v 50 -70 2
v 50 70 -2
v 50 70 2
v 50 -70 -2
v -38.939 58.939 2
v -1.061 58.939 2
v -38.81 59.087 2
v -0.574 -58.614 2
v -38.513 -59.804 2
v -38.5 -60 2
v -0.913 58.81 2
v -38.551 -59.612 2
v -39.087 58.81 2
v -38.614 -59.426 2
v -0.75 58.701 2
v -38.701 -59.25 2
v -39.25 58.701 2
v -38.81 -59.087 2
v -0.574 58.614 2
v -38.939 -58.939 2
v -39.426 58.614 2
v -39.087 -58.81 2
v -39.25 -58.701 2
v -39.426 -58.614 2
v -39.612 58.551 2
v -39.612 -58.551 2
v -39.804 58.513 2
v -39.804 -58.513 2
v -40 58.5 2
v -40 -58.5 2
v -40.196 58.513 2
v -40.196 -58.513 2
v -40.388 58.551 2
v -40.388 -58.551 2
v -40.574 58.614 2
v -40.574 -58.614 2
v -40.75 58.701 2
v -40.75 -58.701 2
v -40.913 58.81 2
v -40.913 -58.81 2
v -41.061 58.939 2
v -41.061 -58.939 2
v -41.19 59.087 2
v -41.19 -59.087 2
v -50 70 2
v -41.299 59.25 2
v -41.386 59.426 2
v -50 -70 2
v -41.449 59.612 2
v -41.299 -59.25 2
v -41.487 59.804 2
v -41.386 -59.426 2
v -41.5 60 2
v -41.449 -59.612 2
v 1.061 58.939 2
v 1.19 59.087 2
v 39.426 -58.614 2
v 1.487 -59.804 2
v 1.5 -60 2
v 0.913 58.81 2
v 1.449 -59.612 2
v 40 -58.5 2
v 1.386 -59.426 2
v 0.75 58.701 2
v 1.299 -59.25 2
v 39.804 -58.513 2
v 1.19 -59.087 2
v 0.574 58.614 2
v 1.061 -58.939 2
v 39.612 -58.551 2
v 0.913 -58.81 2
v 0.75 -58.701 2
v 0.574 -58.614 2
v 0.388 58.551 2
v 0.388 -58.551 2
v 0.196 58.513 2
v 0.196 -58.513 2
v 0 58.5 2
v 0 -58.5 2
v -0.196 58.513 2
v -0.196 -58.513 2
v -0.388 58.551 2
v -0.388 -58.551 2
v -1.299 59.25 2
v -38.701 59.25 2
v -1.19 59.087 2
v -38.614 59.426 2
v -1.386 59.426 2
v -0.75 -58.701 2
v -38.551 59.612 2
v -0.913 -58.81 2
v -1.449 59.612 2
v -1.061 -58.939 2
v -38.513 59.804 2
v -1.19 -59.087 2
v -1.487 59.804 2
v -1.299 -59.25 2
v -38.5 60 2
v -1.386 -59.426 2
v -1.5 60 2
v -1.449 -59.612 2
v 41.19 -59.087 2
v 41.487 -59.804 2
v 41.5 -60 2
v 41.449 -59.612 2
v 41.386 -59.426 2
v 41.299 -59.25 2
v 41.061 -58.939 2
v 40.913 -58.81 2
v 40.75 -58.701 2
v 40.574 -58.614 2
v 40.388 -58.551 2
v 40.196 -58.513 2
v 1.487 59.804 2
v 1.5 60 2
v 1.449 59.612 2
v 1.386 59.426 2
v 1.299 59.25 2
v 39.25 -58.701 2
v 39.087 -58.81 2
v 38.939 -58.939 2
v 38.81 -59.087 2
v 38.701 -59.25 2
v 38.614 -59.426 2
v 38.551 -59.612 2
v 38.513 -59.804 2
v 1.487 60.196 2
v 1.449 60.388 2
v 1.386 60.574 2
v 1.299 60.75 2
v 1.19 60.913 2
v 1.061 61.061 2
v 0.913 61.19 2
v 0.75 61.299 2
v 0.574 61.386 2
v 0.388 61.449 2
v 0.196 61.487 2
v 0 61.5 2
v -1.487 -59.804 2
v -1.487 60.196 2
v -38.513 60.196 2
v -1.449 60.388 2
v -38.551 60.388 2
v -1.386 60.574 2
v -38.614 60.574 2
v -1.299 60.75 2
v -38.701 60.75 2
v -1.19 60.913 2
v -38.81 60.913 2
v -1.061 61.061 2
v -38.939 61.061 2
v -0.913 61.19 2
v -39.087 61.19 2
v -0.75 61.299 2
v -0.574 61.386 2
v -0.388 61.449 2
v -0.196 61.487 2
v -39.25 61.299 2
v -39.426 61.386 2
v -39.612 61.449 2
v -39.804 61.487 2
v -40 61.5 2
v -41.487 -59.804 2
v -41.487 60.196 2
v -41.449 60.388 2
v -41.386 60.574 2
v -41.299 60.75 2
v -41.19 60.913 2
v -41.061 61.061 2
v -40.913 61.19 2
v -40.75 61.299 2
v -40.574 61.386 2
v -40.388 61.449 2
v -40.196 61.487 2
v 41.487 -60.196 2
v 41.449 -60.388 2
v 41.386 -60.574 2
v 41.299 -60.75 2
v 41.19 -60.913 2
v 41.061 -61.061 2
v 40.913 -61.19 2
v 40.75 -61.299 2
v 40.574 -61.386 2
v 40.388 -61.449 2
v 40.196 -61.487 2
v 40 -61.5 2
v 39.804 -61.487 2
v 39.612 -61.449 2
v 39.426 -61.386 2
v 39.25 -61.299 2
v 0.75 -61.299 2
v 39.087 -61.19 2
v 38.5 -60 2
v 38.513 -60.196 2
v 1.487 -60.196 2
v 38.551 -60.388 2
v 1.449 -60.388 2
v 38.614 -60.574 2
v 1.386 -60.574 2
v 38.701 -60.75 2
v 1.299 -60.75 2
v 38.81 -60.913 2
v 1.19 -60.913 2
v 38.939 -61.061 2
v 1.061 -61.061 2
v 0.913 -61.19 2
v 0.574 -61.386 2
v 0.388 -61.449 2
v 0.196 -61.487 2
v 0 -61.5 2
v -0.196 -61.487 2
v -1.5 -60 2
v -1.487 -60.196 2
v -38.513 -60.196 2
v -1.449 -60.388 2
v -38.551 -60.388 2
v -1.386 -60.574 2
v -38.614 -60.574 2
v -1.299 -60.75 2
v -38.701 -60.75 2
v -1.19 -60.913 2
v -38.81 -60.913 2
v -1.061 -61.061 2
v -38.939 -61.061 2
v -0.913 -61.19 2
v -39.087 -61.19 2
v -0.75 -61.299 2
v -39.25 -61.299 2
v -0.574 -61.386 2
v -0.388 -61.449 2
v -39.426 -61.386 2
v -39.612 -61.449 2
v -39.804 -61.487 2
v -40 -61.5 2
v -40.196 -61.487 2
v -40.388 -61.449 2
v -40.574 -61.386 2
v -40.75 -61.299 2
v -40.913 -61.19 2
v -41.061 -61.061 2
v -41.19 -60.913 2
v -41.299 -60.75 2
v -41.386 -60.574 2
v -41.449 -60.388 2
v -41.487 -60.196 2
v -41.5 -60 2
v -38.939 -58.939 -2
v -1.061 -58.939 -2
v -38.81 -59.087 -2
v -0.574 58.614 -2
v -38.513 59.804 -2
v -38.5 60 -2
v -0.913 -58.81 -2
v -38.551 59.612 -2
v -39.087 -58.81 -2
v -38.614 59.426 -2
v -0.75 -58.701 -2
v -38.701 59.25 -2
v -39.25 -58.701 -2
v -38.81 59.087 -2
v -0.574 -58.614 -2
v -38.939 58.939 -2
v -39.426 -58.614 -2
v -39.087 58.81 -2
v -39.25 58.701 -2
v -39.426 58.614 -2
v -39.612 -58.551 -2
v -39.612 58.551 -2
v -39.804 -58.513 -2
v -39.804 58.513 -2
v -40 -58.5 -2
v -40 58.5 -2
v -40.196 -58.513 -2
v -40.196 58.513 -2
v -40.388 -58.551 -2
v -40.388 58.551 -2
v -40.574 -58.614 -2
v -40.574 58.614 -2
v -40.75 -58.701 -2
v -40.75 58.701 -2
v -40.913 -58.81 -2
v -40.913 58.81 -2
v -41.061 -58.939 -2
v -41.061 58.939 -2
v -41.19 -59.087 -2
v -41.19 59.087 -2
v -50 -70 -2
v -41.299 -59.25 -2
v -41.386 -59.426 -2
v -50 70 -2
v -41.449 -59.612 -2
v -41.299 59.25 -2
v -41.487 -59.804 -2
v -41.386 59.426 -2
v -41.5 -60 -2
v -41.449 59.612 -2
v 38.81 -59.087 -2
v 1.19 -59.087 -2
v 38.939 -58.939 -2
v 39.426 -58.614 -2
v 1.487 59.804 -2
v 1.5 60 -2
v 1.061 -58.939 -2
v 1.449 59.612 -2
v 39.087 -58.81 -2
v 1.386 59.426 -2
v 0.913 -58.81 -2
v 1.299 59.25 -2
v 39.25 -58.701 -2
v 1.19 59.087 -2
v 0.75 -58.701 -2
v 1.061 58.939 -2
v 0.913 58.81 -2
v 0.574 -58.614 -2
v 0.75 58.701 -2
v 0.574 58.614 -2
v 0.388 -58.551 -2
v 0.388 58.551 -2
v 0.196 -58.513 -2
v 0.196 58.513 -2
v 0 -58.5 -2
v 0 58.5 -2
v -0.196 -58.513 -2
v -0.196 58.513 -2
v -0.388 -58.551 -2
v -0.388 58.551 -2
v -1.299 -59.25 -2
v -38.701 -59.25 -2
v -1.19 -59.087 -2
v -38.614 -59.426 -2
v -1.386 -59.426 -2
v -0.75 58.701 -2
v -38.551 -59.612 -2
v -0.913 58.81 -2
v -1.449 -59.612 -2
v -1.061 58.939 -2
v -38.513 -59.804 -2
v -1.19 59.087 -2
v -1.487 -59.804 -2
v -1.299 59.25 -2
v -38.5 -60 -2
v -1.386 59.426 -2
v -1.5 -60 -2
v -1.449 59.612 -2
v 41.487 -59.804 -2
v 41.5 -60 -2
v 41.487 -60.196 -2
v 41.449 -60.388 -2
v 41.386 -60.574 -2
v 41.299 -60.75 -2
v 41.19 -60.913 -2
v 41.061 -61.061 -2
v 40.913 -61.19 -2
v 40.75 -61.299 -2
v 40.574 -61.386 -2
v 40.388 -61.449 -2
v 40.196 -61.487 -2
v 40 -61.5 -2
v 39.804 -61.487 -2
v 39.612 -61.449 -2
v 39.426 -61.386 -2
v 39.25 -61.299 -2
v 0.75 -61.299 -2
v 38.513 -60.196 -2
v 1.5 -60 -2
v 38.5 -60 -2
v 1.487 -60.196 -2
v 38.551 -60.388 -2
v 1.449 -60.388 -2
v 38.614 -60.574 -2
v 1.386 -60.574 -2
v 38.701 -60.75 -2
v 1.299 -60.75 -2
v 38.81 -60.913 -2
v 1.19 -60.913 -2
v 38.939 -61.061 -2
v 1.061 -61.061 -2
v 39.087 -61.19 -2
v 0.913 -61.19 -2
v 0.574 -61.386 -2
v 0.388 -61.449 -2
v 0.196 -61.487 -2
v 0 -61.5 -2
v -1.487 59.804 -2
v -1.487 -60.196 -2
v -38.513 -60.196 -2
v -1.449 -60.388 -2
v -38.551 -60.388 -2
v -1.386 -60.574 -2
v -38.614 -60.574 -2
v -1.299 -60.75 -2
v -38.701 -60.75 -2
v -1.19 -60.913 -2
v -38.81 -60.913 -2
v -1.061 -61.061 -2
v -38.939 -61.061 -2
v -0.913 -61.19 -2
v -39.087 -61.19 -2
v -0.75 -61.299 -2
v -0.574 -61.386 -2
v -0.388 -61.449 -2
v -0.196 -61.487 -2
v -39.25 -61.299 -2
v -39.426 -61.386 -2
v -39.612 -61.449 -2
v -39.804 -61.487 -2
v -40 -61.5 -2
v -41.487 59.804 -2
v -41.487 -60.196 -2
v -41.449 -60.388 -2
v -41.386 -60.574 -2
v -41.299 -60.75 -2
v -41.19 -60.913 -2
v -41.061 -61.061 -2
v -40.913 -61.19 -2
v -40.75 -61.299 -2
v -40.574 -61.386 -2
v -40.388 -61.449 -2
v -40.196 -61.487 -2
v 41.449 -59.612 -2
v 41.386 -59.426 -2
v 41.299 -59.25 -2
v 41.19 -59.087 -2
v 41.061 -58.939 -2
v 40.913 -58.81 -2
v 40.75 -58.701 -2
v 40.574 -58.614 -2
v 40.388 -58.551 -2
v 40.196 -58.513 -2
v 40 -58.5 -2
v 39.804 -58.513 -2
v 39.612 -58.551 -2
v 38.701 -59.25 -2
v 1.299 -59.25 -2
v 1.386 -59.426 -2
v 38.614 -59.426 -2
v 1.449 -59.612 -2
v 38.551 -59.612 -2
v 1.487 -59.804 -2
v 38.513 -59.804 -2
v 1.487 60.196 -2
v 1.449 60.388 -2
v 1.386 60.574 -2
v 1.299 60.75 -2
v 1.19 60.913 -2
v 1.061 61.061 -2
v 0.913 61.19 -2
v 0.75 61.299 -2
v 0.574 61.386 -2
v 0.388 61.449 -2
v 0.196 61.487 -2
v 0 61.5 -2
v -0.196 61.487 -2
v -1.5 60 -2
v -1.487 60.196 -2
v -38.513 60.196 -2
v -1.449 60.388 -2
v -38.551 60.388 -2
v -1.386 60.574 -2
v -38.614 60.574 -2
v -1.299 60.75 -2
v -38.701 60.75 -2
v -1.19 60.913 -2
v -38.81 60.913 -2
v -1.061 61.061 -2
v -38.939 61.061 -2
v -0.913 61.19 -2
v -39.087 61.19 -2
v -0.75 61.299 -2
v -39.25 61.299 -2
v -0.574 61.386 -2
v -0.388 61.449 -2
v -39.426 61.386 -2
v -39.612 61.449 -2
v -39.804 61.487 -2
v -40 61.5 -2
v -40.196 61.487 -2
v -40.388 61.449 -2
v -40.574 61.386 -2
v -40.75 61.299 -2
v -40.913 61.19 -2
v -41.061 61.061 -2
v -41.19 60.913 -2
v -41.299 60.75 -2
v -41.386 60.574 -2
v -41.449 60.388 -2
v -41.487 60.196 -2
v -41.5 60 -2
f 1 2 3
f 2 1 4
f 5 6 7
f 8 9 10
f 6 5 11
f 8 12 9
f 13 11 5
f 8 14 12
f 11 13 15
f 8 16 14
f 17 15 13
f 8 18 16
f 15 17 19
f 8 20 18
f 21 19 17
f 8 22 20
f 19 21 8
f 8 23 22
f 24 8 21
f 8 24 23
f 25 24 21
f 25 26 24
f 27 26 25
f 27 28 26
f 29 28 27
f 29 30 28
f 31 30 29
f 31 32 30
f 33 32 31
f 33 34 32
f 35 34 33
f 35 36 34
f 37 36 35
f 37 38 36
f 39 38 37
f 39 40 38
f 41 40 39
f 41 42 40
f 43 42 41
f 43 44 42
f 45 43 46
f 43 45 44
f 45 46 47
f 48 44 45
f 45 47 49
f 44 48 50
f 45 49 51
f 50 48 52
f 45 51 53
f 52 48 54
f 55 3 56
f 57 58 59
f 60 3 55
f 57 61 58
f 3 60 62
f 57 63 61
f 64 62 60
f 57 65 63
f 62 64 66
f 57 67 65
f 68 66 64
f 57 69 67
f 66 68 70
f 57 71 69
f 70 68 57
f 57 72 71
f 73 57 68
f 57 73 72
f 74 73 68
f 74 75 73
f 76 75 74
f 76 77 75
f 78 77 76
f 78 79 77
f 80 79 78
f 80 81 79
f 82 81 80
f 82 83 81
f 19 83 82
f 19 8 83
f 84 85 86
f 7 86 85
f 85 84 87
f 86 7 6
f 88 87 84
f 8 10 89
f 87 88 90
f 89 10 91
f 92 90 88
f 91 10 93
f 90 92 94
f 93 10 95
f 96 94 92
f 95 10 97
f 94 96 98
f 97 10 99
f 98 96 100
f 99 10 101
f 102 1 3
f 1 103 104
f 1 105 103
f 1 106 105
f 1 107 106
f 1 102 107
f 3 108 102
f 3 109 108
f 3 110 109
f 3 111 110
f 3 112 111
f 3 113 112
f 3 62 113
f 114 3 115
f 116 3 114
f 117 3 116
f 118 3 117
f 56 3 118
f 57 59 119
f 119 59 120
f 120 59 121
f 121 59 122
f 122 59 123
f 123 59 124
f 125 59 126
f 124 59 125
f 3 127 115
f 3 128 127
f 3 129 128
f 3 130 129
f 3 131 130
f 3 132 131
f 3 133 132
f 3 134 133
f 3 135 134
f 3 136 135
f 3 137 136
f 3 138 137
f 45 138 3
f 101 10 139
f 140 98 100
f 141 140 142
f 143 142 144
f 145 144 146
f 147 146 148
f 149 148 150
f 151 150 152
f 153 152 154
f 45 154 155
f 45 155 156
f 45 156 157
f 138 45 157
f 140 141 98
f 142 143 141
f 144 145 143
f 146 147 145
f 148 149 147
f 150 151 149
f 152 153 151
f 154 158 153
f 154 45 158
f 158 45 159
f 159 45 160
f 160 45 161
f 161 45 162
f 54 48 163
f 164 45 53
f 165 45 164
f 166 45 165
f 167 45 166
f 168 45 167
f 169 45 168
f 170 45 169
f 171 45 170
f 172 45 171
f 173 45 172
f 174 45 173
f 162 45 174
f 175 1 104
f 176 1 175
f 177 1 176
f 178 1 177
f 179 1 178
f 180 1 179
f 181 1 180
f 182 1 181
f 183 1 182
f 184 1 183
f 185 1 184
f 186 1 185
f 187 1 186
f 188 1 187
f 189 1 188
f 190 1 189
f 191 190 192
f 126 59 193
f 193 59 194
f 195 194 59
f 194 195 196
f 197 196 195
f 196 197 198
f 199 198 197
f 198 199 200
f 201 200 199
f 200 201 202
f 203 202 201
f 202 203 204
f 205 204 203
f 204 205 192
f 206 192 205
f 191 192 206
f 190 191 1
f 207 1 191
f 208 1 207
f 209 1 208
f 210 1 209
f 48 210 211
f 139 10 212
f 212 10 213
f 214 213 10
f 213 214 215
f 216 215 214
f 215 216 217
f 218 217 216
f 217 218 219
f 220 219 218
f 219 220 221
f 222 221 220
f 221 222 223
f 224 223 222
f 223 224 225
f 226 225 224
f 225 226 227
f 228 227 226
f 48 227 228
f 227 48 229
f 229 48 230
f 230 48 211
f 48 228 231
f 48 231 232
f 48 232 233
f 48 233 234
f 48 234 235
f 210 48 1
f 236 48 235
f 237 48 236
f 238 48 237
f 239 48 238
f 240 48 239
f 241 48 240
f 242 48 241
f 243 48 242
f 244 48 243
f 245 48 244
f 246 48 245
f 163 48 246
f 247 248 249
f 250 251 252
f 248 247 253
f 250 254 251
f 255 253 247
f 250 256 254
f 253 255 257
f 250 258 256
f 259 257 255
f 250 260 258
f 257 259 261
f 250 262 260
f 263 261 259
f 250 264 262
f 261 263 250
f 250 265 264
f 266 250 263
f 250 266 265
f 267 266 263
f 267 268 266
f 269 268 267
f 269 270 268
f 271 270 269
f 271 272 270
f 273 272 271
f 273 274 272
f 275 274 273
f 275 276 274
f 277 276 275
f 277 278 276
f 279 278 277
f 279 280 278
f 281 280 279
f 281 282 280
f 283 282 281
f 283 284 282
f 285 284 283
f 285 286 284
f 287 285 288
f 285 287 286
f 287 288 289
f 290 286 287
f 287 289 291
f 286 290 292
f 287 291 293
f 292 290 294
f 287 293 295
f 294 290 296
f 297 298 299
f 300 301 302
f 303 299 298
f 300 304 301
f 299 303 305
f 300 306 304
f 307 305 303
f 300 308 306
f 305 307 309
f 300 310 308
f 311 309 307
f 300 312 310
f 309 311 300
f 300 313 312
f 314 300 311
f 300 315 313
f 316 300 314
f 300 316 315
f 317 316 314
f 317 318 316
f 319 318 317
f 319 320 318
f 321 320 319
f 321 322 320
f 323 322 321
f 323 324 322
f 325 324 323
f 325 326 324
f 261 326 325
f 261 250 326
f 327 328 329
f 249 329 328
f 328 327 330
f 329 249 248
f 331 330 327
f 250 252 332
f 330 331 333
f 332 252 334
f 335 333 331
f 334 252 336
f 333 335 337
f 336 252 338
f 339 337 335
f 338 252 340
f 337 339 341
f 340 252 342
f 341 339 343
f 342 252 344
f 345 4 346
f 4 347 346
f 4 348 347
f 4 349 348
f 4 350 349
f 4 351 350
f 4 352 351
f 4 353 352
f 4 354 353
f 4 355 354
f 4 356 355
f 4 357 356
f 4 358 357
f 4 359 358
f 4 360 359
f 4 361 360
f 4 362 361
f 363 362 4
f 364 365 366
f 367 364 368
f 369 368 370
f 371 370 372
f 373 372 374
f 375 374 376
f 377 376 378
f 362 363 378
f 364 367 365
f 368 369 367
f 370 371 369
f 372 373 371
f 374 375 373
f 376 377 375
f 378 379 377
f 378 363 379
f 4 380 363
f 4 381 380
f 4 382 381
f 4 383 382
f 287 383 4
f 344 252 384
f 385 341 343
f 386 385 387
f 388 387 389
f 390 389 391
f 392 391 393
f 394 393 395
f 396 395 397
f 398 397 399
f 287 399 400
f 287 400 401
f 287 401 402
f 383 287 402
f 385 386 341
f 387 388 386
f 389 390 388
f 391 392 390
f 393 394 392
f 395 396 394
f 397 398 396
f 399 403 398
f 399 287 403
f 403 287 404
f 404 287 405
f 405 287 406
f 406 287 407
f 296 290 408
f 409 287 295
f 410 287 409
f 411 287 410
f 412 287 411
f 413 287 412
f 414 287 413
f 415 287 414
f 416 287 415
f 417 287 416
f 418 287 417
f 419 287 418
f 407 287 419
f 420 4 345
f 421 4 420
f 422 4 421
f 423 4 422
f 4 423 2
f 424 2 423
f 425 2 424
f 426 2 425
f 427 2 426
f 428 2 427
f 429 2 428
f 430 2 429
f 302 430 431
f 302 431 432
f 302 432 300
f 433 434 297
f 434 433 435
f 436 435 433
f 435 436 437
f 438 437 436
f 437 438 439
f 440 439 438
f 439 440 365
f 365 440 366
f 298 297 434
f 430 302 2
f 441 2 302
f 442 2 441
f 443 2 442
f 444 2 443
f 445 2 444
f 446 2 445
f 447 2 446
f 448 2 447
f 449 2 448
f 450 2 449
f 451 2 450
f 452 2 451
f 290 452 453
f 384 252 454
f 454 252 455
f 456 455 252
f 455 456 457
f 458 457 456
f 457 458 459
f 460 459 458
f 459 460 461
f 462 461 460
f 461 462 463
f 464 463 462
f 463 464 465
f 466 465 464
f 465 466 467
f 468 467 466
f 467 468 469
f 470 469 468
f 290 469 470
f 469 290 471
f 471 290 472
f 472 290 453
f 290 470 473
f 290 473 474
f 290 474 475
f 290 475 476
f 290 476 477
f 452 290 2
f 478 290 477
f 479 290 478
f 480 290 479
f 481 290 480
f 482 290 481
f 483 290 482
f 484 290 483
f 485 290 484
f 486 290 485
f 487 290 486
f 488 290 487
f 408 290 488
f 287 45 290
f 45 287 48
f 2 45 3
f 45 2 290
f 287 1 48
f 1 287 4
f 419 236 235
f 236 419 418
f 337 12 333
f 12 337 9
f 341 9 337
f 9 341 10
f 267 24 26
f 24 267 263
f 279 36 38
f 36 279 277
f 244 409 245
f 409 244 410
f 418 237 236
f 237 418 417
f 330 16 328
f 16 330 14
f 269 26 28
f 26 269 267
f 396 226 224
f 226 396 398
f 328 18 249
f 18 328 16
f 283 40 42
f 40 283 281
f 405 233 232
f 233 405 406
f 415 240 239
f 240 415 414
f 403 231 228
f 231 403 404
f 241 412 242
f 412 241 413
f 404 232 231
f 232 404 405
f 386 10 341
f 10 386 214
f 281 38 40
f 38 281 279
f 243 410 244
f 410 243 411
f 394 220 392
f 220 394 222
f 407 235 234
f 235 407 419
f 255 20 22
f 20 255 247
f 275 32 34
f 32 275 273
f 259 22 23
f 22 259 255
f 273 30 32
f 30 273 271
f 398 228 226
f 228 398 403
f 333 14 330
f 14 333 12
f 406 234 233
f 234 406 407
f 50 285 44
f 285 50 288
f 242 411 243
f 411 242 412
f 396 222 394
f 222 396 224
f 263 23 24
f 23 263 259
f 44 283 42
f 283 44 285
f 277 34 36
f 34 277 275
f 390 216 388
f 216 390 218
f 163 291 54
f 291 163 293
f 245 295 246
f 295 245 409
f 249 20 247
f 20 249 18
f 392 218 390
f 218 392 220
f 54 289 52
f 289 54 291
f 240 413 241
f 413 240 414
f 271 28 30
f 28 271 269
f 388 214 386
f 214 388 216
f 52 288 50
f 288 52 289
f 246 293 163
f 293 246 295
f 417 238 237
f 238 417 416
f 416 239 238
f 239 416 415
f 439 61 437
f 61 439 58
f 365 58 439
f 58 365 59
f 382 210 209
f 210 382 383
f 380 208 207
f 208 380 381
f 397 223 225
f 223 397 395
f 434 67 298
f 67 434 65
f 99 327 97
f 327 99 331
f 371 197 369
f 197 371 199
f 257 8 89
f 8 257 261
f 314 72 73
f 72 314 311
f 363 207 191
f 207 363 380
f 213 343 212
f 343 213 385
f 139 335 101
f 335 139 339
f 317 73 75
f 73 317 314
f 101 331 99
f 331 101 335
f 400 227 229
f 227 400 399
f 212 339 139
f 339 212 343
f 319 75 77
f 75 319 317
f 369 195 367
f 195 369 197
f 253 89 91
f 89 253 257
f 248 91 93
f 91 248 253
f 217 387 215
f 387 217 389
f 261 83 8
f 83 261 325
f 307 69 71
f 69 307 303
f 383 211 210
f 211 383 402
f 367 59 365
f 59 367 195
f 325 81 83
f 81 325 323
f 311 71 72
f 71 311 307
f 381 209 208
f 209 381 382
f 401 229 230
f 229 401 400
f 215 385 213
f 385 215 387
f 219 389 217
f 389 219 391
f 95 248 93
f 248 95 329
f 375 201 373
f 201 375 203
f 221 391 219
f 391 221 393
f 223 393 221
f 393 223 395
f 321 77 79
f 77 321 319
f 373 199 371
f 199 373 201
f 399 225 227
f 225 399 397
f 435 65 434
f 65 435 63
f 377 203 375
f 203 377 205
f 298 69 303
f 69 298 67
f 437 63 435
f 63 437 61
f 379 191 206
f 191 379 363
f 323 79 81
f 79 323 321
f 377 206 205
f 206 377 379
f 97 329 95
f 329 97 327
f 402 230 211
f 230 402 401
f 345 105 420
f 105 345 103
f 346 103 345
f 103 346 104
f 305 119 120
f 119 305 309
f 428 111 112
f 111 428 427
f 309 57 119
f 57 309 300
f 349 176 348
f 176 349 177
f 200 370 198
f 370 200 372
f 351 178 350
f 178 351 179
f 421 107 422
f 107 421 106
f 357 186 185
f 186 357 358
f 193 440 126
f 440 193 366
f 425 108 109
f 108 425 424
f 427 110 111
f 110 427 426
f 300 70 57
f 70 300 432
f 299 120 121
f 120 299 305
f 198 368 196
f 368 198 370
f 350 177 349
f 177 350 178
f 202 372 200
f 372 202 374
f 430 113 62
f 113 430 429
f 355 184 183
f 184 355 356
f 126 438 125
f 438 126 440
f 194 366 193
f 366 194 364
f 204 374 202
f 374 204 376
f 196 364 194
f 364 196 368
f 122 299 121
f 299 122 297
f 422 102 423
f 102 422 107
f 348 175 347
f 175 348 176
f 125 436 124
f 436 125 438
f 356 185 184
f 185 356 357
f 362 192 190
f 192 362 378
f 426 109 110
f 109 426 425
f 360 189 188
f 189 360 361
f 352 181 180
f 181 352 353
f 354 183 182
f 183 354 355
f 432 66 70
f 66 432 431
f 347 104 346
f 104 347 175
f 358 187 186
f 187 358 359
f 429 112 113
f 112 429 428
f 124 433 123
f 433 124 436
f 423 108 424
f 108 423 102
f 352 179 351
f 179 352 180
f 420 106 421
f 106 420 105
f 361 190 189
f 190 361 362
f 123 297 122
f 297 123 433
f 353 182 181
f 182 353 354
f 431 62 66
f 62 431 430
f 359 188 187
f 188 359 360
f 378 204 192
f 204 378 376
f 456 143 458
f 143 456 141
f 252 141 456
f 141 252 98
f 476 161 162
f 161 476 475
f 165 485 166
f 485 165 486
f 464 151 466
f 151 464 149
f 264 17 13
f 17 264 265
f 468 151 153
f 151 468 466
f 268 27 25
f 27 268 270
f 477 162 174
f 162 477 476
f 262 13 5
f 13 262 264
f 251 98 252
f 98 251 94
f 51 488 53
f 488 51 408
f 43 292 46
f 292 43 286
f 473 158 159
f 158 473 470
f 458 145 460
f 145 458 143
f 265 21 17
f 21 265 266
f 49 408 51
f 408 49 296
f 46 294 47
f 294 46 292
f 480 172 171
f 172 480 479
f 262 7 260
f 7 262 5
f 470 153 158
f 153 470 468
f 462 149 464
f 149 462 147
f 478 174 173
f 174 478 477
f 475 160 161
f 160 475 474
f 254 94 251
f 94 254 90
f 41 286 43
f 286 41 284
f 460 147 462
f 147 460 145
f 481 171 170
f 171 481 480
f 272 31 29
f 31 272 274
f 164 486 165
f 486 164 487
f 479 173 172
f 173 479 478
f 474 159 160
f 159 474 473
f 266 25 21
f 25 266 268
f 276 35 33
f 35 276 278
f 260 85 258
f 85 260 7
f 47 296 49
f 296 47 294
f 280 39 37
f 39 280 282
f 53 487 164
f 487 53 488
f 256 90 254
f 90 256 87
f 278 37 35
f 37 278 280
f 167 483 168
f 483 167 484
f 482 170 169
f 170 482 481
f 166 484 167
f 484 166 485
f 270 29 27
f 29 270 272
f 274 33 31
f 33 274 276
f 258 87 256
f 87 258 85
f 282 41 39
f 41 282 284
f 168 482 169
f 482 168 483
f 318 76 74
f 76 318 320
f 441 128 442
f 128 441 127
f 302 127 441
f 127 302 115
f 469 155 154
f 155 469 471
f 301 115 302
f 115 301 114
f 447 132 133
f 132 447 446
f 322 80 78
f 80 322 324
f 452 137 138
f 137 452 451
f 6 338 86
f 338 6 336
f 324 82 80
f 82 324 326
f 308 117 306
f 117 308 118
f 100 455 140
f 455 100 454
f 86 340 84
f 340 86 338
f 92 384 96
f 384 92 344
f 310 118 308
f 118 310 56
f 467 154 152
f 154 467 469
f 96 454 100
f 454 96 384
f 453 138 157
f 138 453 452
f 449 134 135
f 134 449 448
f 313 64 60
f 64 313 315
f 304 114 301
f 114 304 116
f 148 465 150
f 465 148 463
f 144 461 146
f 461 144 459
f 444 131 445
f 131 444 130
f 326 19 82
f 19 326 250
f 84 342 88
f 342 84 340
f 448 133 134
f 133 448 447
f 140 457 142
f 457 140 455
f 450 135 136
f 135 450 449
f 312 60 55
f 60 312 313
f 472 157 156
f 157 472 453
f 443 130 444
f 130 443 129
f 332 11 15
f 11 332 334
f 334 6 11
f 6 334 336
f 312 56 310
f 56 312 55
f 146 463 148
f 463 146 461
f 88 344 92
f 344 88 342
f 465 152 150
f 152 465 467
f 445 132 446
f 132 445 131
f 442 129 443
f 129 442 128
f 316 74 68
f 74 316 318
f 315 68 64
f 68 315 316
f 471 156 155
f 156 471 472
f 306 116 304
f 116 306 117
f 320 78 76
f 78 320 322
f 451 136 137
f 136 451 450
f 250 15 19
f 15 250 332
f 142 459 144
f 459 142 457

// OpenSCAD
// ========================================
// a 100 x 140 x 4 mm plate with five 3 mm holes
// NeuroCAD canonical IR; dimensions are millimetres
// ========================================
$fn = 48;

difference() {
  cube(size=[100, 140, 4], center=true);
  translate([-40, -60, 0]) {
    cylinder(r=1.5, h=6, center=true);
  }
  translate([0, -60, 0]) {
    cylinder(r=1.5, h=6, center=true);
  }
  translate([40, -60, 0]) {
    cylinder(r=1.5, h=6, center=true);
  }
  translate([-40, 60, 0]) {
    cylinder(r=1.5, h=6, center=true);
  }
  translate([0, 60, 0]) {
    cylinder(r=1.5, h=6, center=true);
  }
}
